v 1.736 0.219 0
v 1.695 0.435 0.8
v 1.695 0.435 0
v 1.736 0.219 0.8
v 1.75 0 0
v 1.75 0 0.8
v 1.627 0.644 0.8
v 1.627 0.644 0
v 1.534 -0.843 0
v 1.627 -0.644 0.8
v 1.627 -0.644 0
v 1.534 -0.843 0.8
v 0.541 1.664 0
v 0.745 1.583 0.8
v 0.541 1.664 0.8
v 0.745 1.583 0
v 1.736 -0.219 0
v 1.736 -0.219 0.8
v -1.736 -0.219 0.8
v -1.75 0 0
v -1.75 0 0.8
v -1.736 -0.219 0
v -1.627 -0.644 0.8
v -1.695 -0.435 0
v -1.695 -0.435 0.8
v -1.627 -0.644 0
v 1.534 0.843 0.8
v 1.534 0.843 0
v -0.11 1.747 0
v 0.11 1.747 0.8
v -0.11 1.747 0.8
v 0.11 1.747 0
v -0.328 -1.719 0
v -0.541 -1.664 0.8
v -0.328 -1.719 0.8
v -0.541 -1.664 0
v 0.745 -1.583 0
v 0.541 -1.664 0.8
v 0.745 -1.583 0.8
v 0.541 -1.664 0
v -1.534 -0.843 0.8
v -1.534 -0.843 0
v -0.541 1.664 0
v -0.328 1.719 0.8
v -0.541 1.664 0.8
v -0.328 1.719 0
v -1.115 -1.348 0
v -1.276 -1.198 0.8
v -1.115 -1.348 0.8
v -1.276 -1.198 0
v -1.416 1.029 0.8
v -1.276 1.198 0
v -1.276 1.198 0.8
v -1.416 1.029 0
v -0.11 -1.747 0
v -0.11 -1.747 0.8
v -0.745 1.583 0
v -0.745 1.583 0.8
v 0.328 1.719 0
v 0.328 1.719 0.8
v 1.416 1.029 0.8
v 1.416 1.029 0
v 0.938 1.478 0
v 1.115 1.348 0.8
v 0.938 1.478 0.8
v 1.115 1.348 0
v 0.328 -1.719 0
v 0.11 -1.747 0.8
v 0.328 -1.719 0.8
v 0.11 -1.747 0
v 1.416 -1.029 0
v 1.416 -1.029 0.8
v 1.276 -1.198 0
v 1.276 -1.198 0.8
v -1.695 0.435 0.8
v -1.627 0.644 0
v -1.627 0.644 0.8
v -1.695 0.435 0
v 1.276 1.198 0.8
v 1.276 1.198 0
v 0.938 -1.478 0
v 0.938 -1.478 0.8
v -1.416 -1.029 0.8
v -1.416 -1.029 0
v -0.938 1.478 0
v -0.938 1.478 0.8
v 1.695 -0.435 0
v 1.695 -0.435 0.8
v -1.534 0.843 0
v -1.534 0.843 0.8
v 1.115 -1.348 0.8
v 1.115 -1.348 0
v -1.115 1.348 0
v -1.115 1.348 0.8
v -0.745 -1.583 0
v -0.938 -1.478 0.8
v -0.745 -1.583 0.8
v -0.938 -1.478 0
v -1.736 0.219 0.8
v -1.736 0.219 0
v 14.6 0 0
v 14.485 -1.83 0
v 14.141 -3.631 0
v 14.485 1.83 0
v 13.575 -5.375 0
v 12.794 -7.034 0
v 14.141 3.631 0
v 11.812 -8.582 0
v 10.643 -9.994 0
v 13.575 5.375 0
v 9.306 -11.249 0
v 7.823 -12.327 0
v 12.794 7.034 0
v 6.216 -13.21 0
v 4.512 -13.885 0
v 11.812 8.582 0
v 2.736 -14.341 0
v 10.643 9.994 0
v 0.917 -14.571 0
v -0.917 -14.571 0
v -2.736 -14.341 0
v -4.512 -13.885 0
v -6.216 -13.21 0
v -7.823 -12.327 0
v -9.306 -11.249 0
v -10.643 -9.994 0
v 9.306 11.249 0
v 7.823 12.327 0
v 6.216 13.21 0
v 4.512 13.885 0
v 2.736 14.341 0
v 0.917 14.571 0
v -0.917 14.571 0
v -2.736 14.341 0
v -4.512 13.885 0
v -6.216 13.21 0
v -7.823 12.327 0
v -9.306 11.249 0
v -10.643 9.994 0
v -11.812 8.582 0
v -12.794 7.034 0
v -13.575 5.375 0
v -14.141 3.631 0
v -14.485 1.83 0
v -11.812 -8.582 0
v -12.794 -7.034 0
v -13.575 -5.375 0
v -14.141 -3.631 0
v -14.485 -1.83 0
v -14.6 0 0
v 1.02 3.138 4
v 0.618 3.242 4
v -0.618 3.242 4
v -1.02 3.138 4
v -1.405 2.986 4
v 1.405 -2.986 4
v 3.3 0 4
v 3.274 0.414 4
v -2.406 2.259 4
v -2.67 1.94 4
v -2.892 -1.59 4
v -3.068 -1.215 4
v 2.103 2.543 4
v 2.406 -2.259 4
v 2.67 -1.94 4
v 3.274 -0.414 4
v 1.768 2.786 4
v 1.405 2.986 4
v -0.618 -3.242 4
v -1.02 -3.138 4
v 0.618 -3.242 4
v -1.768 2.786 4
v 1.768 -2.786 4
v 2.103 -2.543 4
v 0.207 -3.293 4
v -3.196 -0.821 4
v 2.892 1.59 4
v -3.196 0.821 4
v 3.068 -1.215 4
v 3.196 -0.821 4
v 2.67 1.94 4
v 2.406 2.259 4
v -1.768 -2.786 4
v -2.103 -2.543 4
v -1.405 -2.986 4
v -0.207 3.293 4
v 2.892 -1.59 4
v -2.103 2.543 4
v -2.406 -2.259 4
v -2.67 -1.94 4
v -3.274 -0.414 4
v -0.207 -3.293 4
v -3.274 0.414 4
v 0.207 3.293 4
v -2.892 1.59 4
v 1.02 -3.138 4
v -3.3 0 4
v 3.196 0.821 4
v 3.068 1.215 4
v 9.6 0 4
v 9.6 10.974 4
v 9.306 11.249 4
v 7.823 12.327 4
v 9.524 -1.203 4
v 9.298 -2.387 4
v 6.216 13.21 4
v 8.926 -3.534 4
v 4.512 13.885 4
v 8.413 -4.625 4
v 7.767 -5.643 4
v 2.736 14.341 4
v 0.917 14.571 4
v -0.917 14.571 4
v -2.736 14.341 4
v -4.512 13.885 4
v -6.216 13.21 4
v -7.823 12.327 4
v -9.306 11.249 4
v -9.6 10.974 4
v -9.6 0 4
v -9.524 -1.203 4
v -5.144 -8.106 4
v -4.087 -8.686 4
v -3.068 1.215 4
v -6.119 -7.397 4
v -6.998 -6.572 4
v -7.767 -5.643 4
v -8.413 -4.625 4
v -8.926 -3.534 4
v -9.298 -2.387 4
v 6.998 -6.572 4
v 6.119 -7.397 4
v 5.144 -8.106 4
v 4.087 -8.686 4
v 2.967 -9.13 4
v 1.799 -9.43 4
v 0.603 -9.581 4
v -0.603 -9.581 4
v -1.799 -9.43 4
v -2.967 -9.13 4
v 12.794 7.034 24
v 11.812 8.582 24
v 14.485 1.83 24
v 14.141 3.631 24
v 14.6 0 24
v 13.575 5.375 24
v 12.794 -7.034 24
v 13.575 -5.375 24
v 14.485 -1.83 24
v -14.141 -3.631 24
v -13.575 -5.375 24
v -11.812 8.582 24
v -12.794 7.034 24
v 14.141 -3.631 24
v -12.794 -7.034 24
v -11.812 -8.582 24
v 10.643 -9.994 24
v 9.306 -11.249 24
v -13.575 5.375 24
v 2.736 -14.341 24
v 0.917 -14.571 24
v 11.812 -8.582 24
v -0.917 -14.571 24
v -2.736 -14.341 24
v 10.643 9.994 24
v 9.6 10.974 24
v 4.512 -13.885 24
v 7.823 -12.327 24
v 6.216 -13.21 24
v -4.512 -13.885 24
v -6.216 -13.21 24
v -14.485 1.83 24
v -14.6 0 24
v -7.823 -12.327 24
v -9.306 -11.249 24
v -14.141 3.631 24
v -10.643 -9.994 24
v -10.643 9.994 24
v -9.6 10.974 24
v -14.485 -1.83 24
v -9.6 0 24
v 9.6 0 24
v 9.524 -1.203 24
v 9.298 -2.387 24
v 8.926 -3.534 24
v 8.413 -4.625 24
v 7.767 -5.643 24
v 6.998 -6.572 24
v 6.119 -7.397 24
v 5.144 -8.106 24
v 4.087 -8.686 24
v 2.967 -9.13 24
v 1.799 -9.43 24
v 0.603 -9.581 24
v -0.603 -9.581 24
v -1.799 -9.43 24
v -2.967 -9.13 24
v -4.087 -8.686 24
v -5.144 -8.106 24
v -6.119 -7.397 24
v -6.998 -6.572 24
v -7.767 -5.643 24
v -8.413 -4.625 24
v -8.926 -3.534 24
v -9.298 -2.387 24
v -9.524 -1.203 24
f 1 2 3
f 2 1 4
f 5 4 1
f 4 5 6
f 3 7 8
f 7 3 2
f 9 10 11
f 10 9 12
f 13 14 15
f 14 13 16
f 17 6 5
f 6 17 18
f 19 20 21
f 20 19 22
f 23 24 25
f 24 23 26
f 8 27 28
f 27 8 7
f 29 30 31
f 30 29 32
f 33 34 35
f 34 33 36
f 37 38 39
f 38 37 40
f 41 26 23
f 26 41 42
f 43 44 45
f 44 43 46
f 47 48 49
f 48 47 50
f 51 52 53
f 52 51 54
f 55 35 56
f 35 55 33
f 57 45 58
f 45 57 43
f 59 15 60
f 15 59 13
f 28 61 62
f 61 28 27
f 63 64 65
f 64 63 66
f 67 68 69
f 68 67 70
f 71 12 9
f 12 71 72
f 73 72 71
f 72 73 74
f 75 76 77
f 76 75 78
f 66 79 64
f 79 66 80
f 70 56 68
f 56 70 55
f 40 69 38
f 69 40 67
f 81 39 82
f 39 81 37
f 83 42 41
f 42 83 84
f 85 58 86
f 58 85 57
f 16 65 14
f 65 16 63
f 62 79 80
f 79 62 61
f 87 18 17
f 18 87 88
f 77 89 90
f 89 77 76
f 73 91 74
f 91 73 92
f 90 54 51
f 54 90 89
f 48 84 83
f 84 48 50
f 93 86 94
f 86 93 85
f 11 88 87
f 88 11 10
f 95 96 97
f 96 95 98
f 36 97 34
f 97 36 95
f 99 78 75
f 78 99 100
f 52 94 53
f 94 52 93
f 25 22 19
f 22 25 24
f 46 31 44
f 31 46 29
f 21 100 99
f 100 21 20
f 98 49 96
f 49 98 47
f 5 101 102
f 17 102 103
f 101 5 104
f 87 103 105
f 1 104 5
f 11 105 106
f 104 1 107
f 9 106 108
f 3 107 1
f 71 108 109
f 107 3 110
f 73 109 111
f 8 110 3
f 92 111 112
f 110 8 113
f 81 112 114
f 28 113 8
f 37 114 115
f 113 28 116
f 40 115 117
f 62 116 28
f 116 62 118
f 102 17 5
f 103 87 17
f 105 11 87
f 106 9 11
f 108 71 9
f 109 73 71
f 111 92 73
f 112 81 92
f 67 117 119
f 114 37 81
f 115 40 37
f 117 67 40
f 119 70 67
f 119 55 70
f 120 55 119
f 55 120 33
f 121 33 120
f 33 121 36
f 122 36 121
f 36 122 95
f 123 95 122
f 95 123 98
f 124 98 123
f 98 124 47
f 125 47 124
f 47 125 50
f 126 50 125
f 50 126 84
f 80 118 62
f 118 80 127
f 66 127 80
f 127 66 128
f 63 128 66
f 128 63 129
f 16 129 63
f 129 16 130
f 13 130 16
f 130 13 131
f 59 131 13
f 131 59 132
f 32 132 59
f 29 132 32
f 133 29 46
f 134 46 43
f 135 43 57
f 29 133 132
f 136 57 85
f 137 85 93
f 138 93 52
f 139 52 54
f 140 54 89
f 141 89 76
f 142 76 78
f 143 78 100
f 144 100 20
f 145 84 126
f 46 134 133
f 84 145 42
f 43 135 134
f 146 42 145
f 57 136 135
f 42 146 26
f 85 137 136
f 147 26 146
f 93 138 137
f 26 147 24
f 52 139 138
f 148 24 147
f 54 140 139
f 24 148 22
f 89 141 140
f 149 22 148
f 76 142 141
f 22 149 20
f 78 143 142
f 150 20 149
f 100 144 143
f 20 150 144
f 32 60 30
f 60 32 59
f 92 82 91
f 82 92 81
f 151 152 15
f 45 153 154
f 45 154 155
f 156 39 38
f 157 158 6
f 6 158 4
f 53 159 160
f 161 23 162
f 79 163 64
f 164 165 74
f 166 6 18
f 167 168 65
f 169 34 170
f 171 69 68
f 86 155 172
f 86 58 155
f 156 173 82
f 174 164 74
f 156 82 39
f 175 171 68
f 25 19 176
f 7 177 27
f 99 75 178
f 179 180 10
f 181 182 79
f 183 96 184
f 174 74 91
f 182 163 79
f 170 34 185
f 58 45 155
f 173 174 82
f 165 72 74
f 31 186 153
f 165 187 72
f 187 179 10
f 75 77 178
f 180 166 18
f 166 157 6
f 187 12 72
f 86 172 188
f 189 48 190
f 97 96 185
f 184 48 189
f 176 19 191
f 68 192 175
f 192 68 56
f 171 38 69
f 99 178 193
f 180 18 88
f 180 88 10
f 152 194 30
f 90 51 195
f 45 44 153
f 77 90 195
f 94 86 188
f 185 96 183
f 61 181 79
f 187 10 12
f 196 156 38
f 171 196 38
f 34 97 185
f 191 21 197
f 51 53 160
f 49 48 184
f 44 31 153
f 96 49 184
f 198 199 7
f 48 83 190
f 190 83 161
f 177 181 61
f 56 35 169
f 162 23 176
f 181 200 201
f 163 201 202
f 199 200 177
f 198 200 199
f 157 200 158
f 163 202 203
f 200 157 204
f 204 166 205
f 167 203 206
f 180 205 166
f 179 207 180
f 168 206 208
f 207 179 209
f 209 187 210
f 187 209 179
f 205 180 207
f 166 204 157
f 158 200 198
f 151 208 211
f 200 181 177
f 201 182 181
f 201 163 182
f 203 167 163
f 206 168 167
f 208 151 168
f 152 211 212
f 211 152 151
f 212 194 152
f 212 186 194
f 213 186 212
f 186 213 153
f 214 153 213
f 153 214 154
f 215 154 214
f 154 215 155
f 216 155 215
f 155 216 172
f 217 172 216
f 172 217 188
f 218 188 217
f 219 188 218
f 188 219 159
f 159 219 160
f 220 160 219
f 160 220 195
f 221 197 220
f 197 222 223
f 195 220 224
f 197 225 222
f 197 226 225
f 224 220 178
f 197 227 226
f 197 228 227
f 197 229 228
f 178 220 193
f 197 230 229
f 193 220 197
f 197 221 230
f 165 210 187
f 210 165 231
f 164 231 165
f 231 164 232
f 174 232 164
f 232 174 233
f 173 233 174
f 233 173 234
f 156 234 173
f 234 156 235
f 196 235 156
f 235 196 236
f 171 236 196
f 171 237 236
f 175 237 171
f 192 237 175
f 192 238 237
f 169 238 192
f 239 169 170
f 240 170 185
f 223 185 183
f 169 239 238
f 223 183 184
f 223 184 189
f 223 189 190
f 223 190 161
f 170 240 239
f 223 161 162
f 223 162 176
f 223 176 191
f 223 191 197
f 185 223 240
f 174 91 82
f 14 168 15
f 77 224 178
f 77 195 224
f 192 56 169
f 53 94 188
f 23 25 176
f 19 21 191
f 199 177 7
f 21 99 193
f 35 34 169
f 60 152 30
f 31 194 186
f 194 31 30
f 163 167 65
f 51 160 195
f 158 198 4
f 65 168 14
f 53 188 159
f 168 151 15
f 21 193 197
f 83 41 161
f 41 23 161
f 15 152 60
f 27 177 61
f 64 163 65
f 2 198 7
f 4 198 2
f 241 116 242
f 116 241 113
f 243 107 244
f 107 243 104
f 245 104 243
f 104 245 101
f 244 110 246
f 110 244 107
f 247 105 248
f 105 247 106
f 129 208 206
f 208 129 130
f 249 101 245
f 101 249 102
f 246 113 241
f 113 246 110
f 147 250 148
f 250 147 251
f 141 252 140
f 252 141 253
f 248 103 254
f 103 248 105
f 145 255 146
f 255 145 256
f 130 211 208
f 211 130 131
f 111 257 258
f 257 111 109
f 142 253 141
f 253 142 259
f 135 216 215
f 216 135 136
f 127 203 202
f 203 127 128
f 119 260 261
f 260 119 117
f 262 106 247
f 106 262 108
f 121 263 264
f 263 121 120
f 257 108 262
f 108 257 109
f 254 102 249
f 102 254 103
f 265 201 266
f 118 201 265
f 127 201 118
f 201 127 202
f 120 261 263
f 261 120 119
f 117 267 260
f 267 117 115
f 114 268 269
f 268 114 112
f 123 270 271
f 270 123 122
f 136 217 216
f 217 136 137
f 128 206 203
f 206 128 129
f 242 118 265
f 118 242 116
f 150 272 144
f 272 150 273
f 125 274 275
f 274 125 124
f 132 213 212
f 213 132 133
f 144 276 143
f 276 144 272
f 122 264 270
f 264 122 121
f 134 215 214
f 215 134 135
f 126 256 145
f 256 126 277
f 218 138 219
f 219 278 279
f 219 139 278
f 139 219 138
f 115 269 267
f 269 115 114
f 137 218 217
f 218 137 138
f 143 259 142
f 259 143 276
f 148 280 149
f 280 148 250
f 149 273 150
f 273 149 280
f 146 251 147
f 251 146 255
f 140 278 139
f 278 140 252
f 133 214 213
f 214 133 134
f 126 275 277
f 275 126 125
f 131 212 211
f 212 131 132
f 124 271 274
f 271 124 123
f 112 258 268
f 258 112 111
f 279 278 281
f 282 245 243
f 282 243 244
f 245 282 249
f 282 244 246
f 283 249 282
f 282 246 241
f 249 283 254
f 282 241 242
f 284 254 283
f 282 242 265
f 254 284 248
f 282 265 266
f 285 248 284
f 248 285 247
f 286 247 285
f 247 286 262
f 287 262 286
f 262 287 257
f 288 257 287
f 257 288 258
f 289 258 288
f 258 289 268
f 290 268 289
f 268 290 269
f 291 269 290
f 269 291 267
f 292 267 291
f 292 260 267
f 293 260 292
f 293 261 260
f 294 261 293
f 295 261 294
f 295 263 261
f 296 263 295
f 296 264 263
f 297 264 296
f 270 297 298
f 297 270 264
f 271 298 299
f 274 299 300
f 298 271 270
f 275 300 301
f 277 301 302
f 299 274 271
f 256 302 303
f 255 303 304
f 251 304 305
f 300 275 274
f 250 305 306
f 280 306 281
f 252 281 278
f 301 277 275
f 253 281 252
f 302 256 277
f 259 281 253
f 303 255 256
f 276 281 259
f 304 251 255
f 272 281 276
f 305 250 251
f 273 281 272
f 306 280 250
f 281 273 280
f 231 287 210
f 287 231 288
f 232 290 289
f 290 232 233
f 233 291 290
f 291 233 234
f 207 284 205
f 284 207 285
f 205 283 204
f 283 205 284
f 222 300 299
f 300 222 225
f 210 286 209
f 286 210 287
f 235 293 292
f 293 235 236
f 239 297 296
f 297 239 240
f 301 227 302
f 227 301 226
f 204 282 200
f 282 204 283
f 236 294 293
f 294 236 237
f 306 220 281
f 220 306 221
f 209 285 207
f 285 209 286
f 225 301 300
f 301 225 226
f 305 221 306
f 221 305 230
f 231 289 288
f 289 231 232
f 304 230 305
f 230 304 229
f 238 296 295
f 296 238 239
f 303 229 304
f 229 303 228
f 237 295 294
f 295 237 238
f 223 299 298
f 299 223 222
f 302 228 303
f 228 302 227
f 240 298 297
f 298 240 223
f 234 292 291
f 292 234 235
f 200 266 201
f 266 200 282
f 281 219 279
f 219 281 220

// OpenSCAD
// Rod diameter
rod = 19.2;

// Wall thickness
wall = 10.0;

// Back plate height (area against wall)
h_back = 4.0;

// Support height
h_support = 20.0;

// Diameter of screw head
d_screw_head = 6.6;

// Diameter of screw shaft
d_screw_shaft = 3.5;

// Height of screw head
h_screw_head = 3.2;

$fn = 50;

union() {
    difference() {
        let(
            d = rod + wall,
            h = h_back
        ) {
            cylinder(h=h, d=d);
        }
        let(
            d1 = d_screw_shaft,
            d2 = d_screw_head,
            h1 = h_back - h_screw_head,
            h2 = h_screw_head
        ) {
            cylinder(h=h1, d=d1);
            translate([0, 0, h1]) cylinder(h=h2, d1=d1, d2=d2);
        }
    }

    translate([0, 0, h_back]) {
        let(
            d_outer = rod + wall,
            d_inner = rod,
            h = h_support,
            cube_x = -d_inner / 2.0,
            cube_w = d_inner,
            cube_d = d_outer,
            cube_h = h_support
        ) {
            difference() {
                cylinder(h=h, d=d_outer);
                cylinder(h=h, d=d_inner);
                translate([cube_x, 0, 0]) cube([cube_w, cube_d, cube_h]);
            }
        }
    }
}
